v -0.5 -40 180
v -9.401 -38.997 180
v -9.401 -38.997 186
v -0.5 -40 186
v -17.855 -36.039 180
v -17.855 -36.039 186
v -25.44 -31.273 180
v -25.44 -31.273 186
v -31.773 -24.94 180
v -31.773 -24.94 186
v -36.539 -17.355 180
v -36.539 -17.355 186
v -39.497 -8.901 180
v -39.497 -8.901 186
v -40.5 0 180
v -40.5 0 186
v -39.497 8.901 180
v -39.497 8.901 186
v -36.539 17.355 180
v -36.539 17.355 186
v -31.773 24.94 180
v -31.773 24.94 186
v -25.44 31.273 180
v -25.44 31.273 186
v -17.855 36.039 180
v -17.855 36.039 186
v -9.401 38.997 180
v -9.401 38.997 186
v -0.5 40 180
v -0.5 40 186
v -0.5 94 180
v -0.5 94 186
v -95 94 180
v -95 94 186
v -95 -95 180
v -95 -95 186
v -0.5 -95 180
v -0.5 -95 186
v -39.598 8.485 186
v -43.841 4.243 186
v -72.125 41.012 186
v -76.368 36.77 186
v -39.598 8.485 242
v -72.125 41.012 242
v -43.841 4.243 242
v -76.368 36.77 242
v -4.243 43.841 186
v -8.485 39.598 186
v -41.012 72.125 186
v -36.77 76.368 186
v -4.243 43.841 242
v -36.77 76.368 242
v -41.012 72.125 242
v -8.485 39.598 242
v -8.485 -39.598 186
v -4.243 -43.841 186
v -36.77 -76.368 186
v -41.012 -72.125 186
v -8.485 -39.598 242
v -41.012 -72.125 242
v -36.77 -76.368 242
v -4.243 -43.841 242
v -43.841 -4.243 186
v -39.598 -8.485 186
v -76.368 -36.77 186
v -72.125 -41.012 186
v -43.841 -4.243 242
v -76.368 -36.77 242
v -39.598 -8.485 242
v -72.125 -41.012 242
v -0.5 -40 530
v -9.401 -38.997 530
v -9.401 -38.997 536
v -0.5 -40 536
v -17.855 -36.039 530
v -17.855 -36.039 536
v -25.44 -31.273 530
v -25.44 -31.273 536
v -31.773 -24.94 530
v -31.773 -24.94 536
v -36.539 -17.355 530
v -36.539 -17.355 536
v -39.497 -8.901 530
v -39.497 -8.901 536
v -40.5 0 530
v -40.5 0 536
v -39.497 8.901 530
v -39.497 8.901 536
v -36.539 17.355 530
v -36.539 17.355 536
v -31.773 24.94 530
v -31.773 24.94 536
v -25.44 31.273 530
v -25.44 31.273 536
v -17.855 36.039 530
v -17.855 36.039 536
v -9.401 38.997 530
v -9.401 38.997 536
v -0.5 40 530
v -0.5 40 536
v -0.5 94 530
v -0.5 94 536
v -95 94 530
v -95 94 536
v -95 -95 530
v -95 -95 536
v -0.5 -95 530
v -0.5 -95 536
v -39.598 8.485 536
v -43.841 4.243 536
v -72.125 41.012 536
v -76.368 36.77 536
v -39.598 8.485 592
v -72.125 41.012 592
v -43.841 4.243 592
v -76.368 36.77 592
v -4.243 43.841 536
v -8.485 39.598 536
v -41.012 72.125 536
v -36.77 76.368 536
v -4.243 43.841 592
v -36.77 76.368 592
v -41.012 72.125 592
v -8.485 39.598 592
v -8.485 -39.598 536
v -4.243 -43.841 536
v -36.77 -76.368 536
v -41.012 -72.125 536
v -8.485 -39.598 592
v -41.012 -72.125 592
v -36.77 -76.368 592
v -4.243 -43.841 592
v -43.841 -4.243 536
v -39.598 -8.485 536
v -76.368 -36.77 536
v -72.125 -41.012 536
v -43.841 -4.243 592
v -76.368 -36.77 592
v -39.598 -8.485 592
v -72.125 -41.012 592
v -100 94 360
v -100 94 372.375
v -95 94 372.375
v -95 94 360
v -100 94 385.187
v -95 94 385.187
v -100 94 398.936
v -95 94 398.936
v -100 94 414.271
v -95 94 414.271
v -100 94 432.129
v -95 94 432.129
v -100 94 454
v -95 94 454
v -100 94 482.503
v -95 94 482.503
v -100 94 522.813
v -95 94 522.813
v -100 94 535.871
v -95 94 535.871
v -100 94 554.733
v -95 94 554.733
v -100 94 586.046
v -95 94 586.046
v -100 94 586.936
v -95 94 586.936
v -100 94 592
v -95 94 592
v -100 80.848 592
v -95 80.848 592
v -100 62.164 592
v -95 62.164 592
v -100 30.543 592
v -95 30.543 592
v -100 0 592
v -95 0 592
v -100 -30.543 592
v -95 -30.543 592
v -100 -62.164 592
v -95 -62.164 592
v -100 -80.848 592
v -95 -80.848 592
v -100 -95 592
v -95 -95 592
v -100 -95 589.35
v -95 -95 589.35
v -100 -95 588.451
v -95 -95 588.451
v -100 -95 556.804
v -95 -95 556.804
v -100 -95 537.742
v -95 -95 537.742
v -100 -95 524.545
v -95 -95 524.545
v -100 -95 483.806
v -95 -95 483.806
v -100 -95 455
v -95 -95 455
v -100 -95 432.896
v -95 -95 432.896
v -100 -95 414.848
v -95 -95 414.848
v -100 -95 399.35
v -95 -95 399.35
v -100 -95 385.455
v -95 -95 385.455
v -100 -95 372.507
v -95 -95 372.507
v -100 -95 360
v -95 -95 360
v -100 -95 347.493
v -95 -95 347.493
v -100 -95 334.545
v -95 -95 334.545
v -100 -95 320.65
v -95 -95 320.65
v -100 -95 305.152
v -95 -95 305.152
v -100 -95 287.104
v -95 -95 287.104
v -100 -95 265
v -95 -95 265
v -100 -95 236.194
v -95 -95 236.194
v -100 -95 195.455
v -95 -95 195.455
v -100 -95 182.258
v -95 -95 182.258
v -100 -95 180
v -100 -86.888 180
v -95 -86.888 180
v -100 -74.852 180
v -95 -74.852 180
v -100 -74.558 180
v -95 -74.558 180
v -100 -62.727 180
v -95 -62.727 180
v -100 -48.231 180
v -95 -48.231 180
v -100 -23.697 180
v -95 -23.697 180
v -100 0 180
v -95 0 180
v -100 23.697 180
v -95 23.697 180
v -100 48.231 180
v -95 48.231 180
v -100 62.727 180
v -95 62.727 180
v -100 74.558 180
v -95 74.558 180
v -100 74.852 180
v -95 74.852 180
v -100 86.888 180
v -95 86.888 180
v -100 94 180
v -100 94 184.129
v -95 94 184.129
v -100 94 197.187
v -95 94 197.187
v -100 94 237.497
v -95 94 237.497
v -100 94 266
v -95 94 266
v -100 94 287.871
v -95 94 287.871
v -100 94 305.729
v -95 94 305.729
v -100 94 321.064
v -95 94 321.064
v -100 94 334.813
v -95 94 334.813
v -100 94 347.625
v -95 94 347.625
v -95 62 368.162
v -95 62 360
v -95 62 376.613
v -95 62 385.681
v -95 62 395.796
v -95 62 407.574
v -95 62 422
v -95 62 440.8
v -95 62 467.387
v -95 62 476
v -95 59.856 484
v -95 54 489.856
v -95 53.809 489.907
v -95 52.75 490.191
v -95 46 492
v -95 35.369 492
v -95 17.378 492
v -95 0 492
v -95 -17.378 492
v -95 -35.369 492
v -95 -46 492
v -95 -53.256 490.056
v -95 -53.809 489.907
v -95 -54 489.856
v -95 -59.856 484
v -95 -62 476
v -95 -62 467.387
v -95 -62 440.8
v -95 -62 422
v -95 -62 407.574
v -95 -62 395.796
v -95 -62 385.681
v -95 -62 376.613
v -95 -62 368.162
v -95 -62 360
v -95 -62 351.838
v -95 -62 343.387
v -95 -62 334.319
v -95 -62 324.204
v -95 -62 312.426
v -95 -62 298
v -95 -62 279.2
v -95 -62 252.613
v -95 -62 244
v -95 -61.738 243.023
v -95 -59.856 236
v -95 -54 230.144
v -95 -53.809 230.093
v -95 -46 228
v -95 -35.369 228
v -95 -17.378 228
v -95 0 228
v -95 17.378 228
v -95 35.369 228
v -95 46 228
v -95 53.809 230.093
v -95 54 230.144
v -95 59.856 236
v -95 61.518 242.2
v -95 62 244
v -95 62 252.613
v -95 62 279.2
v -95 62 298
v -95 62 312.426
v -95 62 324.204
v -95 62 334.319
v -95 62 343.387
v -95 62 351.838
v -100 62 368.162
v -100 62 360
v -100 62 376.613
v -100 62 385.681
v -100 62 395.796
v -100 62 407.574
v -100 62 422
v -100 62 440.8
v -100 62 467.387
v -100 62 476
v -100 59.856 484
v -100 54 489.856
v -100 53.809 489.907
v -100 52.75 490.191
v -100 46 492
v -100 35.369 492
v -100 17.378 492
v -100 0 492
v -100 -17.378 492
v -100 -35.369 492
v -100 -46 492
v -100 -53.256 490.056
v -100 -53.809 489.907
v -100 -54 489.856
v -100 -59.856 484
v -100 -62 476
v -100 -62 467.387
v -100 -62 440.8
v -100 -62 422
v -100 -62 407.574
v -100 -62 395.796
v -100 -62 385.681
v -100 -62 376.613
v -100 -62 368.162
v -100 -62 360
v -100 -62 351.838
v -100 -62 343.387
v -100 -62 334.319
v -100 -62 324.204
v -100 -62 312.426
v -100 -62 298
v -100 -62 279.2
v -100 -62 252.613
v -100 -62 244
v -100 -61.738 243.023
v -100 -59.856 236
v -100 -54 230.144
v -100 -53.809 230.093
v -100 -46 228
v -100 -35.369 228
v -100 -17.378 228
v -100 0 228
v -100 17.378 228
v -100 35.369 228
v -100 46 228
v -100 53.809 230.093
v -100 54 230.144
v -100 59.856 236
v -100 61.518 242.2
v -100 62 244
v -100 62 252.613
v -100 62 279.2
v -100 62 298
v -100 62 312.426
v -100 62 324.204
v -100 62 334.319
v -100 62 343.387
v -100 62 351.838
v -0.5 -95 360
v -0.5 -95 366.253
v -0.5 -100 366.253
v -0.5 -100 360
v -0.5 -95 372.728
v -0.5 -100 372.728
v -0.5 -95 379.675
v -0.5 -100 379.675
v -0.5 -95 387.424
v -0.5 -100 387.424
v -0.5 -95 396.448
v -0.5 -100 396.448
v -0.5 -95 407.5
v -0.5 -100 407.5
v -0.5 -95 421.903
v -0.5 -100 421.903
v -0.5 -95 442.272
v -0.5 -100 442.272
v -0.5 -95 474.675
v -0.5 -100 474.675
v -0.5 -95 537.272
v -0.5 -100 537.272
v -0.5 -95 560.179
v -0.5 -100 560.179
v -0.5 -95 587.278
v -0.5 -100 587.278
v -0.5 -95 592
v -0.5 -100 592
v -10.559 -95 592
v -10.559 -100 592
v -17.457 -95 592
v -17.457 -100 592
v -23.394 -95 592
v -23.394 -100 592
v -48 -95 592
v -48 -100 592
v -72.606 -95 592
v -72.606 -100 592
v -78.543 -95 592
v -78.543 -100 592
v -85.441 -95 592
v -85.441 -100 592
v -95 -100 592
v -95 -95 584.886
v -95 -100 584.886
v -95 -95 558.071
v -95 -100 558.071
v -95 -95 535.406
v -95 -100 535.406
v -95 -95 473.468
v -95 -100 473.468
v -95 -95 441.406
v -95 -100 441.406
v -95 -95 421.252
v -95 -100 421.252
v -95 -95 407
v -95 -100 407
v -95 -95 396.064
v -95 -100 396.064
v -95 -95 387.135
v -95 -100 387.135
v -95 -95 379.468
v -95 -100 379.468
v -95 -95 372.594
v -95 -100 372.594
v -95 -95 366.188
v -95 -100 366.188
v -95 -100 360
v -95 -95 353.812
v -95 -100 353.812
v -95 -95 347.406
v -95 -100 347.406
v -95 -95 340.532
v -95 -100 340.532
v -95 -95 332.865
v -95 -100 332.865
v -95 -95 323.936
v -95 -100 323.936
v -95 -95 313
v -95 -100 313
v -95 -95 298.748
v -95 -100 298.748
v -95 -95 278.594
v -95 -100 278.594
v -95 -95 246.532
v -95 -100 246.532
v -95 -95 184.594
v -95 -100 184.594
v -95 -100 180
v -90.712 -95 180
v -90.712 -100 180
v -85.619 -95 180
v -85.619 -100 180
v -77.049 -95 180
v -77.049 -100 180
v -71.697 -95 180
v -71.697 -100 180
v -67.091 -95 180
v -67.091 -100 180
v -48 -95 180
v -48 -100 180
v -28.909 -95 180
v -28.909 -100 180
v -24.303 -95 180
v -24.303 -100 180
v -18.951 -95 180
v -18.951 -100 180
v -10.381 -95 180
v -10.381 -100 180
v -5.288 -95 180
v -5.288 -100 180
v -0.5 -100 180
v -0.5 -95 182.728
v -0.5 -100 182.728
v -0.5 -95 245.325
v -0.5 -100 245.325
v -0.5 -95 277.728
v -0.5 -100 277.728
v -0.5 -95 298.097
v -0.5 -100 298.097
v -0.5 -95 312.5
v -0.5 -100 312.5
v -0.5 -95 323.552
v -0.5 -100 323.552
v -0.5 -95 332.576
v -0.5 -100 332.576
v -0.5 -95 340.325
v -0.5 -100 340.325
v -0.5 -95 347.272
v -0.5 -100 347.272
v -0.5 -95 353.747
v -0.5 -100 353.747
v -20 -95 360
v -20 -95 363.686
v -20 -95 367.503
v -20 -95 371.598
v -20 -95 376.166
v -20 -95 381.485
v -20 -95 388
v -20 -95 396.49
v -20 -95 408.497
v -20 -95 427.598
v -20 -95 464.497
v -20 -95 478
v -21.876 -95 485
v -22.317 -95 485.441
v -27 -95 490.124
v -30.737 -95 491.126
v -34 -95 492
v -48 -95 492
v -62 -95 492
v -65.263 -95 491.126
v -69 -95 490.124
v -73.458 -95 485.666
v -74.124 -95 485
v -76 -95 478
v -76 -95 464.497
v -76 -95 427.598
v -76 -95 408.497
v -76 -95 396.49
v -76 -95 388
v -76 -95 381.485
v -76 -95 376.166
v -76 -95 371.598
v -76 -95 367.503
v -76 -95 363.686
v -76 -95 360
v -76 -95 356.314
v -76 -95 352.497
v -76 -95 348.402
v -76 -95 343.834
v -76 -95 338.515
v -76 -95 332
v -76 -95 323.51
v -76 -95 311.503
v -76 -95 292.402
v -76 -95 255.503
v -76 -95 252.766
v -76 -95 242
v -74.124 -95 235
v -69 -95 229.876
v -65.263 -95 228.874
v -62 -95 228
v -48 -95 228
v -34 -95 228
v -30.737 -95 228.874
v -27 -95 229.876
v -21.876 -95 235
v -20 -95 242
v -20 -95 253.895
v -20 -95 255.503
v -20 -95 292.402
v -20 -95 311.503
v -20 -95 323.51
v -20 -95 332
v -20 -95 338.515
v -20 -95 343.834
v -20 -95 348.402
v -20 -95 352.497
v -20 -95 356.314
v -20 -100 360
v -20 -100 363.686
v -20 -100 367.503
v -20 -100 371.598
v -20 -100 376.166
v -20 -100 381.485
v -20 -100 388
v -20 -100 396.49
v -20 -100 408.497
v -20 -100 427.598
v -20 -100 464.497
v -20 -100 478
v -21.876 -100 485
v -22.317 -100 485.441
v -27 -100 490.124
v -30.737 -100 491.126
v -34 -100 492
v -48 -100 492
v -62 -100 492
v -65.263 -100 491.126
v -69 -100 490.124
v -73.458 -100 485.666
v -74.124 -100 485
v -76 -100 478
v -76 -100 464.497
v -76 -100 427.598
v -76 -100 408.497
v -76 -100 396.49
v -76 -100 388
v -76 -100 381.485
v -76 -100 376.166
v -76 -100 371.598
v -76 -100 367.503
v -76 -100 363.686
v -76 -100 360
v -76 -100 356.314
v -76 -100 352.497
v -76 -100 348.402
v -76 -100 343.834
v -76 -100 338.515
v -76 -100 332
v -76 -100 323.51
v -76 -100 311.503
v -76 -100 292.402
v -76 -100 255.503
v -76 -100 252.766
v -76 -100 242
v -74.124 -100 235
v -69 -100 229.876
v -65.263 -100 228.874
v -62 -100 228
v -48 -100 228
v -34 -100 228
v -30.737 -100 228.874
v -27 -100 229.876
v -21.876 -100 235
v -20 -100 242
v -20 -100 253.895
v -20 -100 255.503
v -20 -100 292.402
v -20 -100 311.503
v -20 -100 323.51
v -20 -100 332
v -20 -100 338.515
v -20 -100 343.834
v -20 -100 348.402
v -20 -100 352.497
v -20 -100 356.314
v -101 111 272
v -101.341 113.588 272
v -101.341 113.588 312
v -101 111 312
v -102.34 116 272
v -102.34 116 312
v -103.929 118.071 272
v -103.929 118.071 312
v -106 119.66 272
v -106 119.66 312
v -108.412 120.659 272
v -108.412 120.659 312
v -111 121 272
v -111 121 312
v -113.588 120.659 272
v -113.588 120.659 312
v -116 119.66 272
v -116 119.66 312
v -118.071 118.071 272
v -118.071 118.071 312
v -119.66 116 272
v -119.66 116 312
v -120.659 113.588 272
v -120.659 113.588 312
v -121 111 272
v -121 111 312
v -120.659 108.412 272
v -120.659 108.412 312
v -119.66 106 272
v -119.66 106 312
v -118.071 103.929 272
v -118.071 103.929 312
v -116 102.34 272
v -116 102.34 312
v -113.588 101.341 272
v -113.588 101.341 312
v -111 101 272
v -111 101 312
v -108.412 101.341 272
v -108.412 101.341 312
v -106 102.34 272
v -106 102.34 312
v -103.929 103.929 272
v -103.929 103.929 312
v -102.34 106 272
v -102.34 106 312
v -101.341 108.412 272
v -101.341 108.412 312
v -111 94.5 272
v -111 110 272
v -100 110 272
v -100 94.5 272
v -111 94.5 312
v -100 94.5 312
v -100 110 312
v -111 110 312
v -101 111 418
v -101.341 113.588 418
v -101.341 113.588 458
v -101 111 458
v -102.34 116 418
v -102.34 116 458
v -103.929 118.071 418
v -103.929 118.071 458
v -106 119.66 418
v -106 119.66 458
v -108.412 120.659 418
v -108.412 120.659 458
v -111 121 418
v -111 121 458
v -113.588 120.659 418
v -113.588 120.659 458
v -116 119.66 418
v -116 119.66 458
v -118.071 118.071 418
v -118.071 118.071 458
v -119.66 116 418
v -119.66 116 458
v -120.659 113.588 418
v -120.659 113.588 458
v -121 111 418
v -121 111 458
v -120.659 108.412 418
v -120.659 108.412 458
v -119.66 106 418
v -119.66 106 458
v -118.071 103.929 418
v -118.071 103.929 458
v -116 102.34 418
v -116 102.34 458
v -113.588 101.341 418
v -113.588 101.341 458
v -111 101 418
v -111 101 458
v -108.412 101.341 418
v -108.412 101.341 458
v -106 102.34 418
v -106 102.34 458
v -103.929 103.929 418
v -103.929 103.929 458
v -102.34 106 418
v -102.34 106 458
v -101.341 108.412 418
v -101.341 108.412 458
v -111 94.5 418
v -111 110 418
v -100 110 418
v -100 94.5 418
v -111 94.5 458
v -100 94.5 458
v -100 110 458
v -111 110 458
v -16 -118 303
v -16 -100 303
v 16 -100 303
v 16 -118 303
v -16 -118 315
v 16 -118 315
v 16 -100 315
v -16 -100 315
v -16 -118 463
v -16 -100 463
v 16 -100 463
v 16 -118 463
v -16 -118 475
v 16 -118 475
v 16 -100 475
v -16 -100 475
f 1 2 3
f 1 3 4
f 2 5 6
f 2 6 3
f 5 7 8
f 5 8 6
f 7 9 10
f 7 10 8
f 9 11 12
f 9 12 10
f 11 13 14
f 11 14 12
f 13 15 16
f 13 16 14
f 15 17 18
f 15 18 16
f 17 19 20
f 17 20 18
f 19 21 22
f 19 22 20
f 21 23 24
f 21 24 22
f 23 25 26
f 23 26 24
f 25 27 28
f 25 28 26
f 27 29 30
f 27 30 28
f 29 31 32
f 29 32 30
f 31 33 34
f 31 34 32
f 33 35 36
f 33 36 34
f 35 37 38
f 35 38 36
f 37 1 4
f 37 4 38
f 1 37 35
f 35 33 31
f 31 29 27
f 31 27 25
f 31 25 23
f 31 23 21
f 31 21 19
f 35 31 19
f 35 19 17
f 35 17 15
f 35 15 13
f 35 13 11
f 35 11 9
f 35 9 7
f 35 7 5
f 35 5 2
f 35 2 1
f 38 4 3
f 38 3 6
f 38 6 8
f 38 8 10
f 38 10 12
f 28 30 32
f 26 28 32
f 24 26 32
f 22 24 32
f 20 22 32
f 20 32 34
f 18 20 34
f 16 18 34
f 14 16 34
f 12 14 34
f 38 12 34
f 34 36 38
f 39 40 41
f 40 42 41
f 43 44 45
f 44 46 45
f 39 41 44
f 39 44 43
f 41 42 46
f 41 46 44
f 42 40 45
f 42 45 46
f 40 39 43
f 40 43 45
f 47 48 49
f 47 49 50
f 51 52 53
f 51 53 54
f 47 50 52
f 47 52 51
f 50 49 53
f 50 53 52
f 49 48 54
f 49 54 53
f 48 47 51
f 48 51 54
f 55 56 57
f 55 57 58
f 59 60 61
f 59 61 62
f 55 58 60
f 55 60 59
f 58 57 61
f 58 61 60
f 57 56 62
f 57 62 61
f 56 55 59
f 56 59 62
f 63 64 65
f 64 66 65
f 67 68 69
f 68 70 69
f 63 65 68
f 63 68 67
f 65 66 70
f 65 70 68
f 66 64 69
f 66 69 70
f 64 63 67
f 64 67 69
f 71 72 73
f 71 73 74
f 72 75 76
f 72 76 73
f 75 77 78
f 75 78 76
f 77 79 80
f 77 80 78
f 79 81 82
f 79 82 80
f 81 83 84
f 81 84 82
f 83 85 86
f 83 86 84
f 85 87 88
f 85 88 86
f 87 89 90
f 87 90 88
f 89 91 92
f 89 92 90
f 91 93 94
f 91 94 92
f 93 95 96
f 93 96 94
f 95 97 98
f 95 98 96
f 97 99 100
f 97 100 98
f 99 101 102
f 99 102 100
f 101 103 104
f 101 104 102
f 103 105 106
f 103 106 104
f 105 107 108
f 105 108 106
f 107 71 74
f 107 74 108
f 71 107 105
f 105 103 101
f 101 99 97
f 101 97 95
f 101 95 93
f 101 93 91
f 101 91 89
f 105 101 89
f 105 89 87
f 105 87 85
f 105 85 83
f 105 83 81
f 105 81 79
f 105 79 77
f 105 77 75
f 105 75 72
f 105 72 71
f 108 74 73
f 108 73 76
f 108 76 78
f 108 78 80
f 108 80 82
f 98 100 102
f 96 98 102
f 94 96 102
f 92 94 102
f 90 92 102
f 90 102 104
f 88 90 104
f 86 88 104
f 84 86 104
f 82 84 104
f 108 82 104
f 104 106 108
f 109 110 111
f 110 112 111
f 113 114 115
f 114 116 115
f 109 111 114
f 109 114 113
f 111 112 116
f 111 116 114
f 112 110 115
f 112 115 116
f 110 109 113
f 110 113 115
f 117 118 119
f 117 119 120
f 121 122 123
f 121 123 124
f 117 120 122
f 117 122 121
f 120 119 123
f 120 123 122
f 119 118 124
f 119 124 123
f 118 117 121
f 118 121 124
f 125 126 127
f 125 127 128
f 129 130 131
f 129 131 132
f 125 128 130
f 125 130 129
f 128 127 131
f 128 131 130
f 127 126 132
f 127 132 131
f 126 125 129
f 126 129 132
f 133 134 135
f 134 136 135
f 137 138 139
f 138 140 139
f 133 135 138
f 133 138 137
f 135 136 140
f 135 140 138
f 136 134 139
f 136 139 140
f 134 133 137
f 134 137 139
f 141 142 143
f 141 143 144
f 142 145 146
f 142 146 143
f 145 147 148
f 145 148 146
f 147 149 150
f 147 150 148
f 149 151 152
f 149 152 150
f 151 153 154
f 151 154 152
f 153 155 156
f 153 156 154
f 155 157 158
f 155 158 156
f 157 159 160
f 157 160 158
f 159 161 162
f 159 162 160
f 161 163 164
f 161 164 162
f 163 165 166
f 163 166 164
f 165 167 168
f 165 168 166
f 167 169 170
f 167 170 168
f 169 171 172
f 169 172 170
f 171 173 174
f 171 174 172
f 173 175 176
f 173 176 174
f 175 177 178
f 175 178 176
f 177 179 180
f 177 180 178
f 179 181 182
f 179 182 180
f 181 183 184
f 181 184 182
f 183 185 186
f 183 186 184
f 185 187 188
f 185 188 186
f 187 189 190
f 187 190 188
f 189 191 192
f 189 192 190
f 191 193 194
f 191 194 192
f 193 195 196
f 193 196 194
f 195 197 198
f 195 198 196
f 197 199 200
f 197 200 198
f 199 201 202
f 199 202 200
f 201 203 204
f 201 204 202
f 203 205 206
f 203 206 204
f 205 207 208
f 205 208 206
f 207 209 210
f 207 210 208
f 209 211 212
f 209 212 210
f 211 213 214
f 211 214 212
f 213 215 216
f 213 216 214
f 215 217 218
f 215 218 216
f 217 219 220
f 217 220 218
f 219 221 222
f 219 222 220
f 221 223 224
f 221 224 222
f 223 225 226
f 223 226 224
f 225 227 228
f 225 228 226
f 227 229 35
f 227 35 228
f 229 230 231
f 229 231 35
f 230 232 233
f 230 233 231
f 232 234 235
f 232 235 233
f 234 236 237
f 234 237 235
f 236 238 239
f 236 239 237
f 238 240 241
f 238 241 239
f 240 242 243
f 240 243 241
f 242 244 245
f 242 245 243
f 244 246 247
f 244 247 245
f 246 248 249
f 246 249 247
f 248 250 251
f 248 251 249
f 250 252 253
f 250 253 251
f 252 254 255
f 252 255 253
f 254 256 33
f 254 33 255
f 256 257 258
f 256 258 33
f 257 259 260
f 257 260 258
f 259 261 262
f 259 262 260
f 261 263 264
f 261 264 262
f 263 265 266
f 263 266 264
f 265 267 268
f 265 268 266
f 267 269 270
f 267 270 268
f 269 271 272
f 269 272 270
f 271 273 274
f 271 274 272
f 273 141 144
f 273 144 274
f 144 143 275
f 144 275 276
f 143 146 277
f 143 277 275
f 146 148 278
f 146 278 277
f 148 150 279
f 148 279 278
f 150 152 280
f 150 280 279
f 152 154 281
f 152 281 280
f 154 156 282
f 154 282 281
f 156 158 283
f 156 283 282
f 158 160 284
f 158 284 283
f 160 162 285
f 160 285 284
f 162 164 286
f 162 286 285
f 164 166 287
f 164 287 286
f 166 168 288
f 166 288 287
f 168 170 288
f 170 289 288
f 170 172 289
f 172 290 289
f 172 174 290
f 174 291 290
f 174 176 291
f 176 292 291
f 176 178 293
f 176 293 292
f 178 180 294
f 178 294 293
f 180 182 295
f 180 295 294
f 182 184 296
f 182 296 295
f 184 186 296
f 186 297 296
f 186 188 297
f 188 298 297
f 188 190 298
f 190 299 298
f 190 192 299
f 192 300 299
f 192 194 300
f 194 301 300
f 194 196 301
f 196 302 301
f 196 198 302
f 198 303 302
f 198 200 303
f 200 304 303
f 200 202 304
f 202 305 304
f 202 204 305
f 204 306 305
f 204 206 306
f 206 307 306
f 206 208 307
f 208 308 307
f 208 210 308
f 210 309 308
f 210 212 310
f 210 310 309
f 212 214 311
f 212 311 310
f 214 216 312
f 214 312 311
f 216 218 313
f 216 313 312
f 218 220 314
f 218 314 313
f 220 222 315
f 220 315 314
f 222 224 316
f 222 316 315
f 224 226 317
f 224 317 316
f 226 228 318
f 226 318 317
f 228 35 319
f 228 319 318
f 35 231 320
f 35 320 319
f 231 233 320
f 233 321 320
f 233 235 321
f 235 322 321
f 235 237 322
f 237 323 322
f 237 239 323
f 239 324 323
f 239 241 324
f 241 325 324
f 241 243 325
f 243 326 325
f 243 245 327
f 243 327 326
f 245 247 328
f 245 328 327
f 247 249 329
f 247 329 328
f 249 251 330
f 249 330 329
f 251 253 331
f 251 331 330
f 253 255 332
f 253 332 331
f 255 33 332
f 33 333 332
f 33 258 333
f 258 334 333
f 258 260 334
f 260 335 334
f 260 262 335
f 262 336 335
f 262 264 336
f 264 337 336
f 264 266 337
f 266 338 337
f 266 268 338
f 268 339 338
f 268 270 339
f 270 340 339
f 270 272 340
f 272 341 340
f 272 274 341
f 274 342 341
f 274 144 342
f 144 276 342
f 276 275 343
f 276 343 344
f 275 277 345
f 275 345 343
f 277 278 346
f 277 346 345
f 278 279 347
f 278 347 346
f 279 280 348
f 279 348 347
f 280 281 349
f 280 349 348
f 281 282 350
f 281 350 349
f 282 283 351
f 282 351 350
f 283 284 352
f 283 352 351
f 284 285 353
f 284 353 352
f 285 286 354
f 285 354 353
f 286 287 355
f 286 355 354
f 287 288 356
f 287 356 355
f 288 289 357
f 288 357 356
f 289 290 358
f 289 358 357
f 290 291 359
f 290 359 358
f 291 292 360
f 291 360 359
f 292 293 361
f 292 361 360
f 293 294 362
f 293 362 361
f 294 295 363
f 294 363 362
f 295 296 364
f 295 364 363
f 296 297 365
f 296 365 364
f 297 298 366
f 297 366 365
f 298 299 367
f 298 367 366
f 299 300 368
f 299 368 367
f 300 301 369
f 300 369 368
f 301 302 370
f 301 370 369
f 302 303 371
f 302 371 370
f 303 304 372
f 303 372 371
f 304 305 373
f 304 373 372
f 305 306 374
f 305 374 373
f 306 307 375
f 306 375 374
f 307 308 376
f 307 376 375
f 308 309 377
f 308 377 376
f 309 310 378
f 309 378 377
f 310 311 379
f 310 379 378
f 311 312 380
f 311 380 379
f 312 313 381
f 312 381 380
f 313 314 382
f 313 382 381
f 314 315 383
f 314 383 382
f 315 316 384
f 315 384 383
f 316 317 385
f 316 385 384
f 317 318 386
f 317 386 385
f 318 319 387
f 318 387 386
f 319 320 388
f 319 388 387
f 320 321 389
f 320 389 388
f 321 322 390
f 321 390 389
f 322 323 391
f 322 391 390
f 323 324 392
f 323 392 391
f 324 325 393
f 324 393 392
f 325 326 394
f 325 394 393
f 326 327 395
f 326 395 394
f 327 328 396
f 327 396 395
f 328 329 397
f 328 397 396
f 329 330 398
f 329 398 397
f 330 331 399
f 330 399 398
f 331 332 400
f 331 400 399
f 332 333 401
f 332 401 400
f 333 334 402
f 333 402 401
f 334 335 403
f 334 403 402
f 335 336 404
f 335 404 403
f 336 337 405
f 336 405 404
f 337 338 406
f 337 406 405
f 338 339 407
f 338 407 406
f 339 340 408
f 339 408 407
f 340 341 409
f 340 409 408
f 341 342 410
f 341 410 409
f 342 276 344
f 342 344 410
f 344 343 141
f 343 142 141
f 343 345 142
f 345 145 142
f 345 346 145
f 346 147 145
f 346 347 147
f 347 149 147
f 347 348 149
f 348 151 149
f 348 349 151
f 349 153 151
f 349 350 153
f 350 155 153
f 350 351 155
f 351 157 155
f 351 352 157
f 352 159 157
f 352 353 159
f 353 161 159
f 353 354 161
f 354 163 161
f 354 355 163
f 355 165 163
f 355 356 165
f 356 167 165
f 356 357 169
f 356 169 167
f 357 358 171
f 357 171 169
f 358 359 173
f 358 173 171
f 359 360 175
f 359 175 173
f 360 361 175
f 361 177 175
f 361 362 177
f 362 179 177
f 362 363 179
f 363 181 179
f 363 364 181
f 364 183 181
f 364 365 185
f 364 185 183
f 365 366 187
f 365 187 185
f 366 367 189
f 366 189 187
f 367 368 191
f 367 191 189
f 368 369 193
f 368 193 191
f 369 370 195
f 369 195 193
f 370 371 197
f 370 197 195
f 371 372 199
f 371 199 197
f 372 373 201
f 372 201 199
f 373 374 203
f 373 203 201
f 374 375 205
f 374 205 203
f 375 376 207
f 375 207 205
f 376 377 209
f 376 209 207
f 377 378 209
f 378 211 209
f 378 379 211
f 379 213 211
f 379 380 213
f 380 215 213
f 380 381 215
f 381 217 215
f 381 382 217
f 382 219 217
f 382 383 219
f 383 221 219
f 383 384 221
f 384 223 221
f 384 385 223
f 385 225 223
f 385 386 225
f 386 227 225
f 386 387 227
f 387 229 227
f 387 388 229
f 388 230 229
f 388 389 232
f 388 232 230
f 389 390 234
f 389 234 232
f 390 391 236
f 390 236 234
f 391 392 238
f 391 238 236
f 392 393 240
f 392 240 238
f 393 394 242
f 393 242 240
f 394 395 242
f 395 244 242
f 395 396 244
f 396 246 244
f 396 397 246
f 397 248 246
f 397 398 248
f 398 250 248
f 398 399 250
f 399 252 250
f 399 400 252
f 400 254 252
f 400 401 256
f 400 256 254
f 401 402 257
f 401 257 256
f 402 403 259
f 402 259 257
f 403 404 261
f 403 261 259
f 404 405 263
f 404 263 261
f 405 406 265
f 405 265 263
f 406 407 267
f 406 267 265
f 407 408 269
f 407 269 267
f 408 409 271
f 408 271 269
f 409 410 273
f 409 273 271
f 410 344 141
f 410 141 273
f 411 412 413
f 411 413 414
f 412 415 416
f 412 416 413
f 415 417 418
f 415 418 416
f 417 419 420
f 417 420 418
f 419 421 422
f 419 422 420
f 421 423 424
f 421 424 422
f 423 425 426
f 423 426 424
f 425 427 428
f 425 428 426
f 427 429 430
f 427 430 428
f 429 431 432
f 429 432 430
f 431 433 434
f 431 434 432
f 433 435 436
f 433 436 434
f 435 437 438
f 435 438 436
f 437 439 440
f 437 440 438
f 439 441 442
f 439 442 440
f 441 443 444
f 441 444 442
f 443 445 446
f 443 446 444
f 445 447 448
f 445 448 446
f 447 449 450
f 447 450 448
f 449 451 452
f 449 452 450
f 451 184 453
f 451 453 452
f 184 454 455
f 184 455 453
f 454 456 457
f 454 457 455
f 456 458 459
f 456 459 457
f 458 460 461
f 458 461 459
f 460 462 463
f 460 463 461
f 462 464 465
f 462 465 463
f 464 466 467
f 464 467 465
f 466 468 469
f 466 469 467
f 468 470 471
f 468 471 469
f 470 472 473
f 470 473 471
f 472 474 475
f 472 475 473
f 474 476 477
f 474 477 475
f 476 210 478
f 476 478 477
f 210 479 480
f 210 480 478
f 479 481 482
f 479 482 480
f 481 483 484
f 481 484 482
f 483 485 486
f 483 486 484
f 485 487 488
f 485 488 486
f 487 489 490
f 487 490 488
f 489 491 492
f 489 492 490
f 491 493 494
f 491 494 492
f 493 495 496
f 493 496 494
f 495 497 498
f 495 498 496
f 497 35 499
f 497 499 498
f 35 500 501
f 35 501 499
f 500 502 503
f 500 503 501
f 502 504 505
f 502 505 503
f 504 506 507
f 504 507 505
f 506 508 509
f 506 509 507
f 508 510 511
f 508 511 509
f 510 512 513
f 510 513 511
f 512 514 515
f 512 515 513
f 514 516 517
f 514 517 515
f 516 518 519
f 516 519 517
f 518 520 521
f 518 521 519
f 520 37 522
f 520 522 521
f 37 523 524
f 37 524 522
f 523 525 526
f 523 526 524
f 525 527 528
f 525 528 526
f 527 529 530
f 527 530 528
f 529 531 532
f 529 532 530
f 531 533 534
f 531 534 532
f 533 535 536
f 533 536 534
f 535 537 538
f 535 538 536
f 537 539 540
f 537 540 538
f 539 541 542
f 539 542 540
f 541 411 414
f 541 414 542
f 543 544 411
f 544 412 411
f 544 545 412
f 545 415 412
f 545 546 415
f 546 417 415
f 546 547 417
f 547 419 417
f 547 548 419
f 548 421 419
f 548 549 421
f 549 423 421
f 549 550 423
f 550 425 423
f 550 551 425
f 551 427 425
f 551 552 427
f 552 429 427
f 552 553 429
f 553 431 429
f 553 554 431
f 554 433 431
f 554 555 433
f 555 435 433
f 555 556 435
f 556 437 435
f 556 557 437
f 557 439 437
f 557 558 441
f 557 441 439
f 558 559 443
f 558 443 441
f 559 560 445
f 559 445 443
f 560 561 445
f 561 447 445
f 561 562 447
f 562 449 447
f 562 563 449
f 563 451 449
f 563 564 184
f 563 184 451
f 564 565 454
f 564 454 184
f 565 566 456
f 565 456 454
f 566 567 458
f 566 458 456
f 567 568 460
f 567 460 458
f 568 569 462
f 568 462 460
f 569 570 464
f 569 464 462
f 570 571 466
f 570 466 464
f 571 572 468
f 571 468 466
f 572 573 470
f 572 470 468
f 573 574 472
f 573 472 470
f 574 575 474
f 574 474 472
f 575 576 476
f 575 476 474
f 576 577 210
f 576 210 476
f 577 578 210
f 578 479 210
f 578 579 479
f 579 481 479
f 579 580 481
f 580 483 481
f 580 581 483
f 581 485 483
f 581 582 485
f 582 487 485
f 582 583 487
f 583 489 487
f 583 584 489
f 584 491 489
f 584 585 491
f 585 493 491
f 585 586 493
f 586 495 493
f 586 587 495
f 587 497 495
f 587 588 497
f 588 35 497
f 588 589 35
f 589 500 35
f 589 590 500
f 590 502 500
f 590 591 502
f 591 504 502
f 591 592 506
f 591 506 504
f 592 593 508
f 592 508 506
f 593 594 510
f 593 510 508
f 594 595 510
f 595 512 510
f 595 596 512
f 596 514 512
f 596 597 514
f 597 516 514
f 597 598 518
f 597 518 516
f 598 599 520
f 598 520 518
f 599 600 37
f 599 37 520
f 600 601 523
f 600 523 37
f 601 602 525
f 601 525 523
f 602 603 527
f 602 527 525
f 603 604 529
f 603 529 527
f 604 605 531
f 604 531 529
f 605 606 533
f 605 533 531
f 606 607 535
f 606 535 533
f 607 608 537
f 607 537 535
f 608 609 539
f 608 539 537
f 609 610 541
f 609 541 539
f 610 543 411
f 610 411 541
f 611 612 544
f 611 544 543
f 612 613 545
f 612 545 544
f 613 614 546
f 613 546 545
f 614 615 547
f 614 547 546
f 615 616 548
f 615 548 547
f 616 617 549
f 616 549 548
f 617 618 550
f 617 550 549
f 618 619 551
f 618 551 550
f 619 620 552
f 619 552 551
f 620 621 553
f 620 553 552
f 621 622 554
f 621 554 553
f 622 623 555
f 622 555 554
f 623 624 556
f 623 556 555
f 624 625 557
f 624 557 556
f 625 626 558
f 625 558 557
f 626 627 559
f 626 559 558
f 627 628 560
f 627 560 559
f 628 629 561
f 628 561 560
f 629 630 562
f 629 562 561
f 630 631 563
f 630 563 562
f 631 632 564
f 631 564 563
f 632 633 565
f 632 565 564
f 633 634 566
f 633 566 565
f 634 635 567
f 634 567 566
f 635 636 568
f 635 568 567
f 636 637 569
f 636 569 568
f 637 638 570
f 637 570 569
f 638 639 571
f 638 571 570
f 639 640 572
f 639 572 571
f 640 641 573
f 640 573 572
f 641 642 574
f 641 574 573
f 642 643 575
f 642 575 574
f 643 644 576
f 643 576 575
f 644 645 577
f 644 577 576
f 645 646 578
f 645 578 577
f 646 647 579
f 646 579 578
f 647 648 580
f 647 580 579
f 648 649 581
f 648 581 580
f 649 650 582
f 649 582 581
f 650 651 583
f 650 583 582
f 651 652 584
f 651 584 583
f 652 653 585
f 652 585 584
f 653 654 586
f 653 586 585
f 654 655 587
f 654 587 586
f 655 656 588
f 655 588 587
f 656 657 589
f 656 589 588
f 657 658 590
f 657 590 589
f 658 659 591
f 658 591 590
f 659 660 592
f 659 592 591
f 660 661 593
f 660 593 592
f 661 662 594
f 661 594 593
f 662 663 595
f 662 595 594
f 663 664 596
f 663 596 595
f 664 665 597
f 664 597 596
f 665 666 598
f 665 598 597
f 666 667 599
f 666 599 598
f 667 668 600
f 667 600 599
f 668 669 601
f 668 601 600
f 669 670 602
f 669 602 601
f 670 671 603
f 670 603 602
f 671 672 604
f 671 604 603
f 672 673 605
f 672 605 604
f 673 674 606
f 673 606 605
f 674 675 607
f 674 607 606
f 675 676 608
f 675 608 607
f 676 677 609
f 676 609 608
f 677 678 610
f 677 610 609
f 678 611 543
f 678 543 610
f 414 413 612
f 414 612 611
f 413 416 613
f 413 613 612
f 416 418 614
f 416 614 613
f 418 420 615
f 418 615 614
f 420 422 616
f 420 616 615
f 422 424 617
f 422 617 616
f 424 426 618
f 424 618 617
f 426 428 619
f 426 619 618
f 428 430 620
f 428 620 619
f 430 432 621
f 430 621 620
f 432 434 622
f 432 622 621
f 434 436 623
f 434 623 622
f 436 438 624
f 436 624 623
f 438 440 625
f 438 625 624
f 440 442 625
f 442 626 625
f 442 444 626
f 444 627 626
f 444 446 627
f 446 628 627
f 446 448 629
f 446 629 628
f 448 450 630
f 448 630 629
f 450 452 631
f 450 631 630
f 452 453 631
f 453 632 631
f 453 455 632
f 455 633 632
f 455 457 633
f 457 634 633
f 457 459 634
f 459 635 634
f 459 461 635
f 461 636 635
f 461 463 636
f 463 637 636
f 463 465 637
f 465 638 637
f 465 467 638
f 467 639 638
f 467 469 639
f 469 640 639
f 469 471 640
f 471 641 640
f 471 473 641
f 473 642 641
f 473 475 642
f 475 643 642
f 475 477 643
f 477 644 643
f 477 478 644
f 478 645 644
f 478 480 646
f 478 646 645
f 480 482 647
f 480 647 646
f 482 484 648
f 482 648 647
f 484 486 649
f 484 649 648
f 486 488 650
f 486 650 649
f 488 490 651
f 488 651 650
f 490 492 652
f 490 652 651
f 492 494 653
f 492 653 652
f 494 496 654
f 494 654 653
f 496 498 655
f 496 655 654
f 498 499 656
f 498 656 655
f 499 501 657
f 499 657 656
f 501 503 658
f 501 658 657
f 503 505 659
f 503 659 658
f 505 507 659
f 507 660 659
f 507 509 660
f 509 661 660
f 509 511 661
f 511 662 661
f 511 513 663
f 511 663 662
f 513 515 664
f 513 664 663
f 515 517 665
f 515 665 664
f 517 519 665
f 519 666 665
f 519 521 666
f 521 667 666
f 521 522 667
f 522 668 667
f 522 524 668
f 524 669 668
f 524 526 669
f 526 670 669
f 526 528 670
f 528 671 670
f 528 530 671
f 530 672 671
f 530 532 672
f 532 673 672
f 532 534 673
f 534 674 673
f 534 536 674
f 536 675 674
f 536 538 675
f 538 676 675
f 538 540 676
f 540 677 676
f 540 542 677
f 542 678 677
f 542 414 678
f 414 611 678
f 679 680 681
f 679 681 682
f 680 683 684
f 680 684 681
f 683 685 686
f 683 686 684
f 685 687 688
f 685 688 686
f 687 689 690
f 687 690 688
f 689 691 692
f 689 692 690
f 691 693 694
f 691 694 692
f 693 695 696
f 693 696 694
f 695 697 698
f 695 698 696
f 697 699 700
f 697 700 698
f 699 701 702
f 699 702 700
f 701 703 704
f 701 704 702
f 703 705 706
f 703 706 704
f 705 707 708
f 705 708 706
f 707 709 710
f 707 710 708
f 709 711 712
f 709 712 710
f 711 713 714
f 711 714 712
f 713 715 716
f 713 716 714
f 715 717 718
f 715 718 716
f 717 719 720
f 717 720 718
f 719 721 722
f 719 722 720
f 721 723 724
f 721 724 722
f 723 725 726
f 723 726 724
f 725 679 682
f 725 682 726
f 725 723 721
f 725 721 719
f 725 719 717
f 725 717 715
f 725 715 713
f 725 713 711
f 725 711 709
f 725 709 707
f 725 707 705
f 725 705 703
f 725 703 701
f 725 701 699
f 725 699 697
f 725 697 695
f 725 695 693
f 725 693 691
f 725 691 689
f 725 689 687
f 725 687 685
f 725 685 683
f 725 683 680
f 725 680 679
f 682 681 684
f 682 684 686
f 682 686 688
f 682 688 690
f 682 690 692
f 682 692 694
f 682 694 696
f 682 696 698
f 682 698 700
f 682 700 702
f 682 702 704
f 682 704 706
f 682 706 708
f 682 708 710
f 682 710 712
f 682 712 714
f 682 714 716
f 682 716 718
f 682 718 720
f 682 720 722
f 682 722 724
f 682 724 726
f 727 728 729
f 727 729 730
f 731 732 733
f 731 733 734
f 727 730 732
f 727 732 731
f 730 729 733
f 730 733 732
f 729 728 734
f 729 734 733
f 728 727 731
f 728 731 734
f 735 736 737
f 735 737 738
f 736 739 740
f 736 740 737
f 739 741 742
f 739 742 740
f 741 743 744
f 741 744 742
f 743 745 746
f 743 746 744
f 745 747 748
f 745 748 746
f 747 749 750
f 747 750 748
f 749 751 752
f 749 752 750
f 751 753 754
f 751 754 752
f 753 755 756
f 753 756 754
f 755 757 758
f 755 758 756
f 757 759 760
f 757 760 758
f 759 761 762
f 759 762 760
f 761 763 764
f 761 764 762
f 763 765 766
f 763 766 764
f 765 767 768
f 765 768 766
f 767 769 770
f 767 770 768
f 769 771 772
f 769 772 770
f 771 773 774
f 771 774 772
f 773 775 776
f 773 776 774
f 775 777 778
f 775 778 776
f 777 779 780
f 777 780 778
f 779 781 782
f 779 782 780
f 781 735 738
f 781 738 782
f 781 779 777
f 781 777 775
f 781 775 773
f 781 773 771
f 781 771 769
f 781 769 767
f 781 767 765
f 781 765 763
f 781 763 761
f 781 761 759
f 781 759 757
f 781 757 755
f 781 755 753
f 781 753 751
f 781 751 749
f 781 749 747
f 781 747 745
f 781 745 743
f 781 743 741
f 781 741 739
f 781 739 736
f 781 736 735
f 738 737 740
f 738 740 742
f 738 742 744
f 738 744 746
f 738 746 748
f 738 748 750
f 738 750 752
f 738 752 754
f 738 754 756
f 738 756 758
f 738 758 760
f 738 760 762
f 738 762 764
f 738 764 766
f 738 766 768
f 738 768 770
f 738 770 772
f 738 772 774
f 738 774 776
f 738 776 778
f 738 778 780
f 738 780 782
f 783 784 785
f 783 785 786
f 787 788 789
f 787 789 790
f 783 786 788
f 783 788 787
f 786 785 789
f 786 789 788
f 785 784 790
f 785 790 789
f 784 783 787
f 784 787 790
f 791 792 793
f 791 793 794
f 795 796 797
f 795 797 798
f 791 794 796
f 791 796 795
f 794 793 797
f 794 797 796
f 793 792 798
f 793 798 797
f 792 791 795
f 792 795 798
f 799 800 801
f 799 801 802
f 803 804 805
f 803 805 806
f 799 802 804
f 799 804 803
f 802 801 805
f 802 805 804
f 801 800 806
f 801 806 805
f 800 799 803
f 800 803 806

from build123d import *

# Parameters (mm, degrees)
EXTRUDE_START       = 180
EXTRUDE_1_DEPTH     = 6
EXTRUDE_START_2     = 186
EXTRUDE_2_DEPTH     = 56
EXTRUDE_3_DEPTH     = 56
EXTRUDE_4_DEPTH     = 56
EXTRUDE_5_DEPTH     = 56
EXTRUDE_START_3     = 530
EXTRUDE_6_DEPTH     = 6
EXTRUDE_START_4     = 536
EXTRUDE_7_DEPTH     = 56
EXTRUDE_8_DEPTH     = 56
EXTRUDE_9_DEPTH     = 56
EXTRUDE_10_DEPTH    = 56
EXTRUDE_START_5     = -100
EXTRUDE_SKETCH_11_W = 412
EXTRUDE_SKETCH_11_H = 189
EXTRUDE_11_DEPTH    = 5
EXTRUDE_SKETCH_12_W = 94.5
EXTRUDE_SKETCH_12_H = 412
EXTRUDE_12_DEPTH    = 5
EXTRUDE_START_6     = 272
EXTRUDE_SKETCH_13_R = 10
EXTRUDE_13_DEPTH    = 40
EXTRUDE_SKETCH_14_W = 11
EXTRUDE_SKETCH_14_H = 15.5
EXTRUDE_14_DEPTH    = 40
EXTRUDE_START_7     = 418
EXTRUDE_SKETCH_15_R = 10
EXTRUDE_15_DEPTH    = 40
EXTRUDE_SKETCH_16_W = 11
EXTRUDE_SKETCH_16_H = 15.5
EXTRUDE_16_DEPTH    = 40
EXTRUDE_START_8     = 303
EXTRUDE_SKETCH_17_W = 32
EXTRUDE_SKETCH_17_H = 18
EXTRUDE_17_DEPTH    = 12
EXTRUDE_START_9     = 463
EXTRUDE_SKETCH_18_W = 32
EXTRUDE_SKETCH_18_H = 18
EXTRUDE_18_DEPTH    = 12


with BuildPart() as part:
    # Extrude sketch 1 → Extrude 1 (new body)
    with BuildSketch(Plane.XY.offset(EXTRUDE_START)):
        with BuildLine():
            Line((-95, 94), (-95, -95))
            Line((-95, -95), (-0.5, -95))
            Line((-0.5, -95), (-0.5, -40))
            ThreePointArc((-0.5, -40), (-40.5, 0), (-0.5, 40))
            Line((-0.5, 40), (-0.5, 94))
            Line((-0.5, 94), (-95, 94))
        make_face()
    extrude(amount=EXTRUDE_1_DEPTH)


with BuildPart() as body_2:
    # Extrude sketch 2 → Extrude 2 (new body)
    with BuildSketch(Plane.XY.offset(EXTRUDE_START_2)):
        Polygon((-39.597979746, 8.485281374), (-72.124891681, 41.012193309), (-76.367532368, 36.769552622), (-43.840620434, 4.242640687), align=None)
    extrude(amount=EXTRUDE_2_DEPTH)


with BuildPart() as body_3:
    # Extrude sketch 3 → Extrude 3 (new body)
    with BuildSketch(Plane.XY.offset(EXTRUDE_START_2)):
        Polygon((-41.012193309, 72.124891681), (-8.485281374, 39.597979746), (-4.242640687, 43.840620434), (-36.769552622, 76.367532368), align=None)
    extrude(amount=EXTRUDE_3_DEPTH)


with BuildPart() as body_4:
    # Extrude sketch 4 → Extrude 4 (new body)
    with BuildSketch(Plane.XY.offset(EXTRUDE_START_2)):
        Polygon((-8.485281374, -39.597979746), (-41.012193309, -72.124891681), (-36.769552622, -76.367532368), (-4.242640687, -43.840620434), align=None)
    extrude(amount=EXTRUDE_4_DEPTH)


with BuildPart() as body_5:
    # Extrude sketch 5 → Extrude 5 (new body)
    with BuildSketch(Plane.XY.offset(EXTRUDE_START_2)):
        Polygon((-43.840620434, -4.242640687), (-76.367532368, -36.769552622), (-72.124891681, -41.012193309), (-39.597979746, -8.485281374), align=None)
    extrude(amount=EXTRUDE_5_DEPTH)


with BuildPart() as body_6:
    # Extrude sketch 6 → Extrude 6 (new body)
    with BuildSketch(Plane.XY.offset(EXTRUDE_START_3)):
        with BuildLine():
            Line((-95, 94), (-95, -95))
            Line((-95, -95), (-0.5, -95))
            Line((-0.5, -95), (-0.5, -40))
            ThreePointArc((-0.5, -40), (-40.5, 0), (-0.5, 40))
            Line((-0.5, 40), (-0.5, 94))
            Line((-0.5, 94), (-95, 94))
        make_face()
    extrude(amount=EXTRUDE_6_DEPTH)


with BuildPart() as body_7:
    # Extrude sketch 7 → Extrude 7 (new body)
    with BuildSketch(Plane.XY.offset(EXTRUDE_START_4)):
        Polygon((-39.597979746, 8.485281374), (-72.124891681, 41.012193309), (-76.367532368, 36.769552622), (-43.840620434, 4.242640687), align=None)
    extrude(amount=EXTRUDE_7_DEPTH)


with BuildPart() as body_8:
    # Extrude sketch 8 → Extrude 8 (new body)
    with BuildSketch(Plane.XY.offset(EXTRUDE_START_4)):
        Polygon((-41.012193309, 72.124891681), (-8.485281374, 39.597979746), (-4.242640687, 43.840620434), (-36.769552622, 76.367532368), align=None)
    extrude(amount=EXTRUDE_8_DEPTH)


with BuildPart() as body_9:
    # Extrude sketch 9 → Extrude 9 (new body)
    with BuildSketch(Plane.XY.offset(EXTRUDE_START_4)):
        Polygon((-8.485281374, -39.597979746), (-41.012193309, -72.124891681), (-36.769552622, -76.367532368), (-4.242640687, -43.840620434), align=None)
    extrude(amount=EXTRUDE_9_DEPTH)


with BuildPart() as body_10:
    # Extrude sketch 10 → Extrude 10 (new body)
    with BuildSketch(Plane.XY.offset(EXTRUDE_START_4)):
        Polygon((-43.840620434, -4.242640687), (-76.367532368, -36.769552622), (-72.124891681, -41.012193309), (-39.597979746, -8.485281374), align=None)
    extrude(amount=EXTRUDE_10_DEPTH)


with BuildPart() as body_11:
    # Extrude sketch 11 → Extrude 11 (new body)
    with BuildSketch(Plane(origin=(0, 0, 0), x_dir=(0, 0, -1), z_dir=(1, 0, 0)).offset(EXTRUDE_START_5)):
        with Locations((-386, -0.5)):
            Rectangle(EXTRUDE_SKETCH_11_W, EXTRUDE_SKETCH_11_H)
        with BuildLine():
            Line((-244, 62), (-476, 62))
            ThreePointArc((-476, 62), (-487.313708499, 57.313708499), (-492, 46))
            Line((-492, 46), (-492, -46))
            ThreePointArc((-492, -46), (-487.313708499, -57.313708499), (-476, -62))
            Line((-476, -62), (-244, -62))
            ThreePointArc((-244, -62), (-232.686291501, -57.313708499), (-228, -46))
            Line((-228, -46), (-228, 46))
            ThreePointArc((-228, 46), (-232.686291501, 57.313708499), (-244, 62))
        make_face(mode=Mode.SUBTRACT)
    extrude(amount=EXTRUDE_11_DEPTH)


with BuildPart() as body_12:
    # Extrude sketch 12 → Extrude 12 (new body)
    with BuildSketch(Plane(origin=(0, 0, 0), x_dir=(1, 0, 0), z_dir=(0, 1, 0)).offset(EXTRUDE_START_5)):
        with Locations((-47.75, -386)):
            Rectangle(EXTRUDE_SKETCH_12_W, EXTRUDE_SKETCH_12_H)
        with BuildLine():
            Line((-20, -242), (-20, -478))
            ThreePointArc((-20, -478), (-24.100505063, -487.899494937), (-34, -492))
            Line((-34, -492), (-62, -492))
            ThreePointArc((-62, -492), (-71.899494937, -487.899494937), (-76, -478))
            Line((-76, -478), (-76, -242))
            ThreePointArc((-76, -242), (-71.899494937, -232.100505063), (-62, -228))
            Line((-62, -228), (-34, -228))
            ThreePointArc((-34, -228), (-24.100505063, -232.100505063), (-20, -242))
        make_face(mode=Mode.SUBTRACT)
    extrude(amount=EXTRUDE_12_DEPTH)


with BuildPart() as body_13:
    # Extrude sketch 13 → Extrude 13 (new body)
    with BuildSketch(Plane.XY.offset(EXTRUDE_START_6)):
        with Locations((-111, 111)):
            Circle(EXTRUDE_SKETCH_13_R)
    extrude(amount=EXTRUDE_13_DEPTH)


with BuildPart() as body_14:
    # Extrude sketch 14 → Extrude 14 (new body)
    with BuildSketch(Plane.XY.offset(EXTRUDE_START_6)):
        with Locations((-105.5, 102.25)):
            Rectangle(EXTRUDE_SKETCH_14_W, EXTRUDE_SKETCH_14_H)
    extrude(amount=EXTRUDE_14_DEPTH)


with BuildPart() as body_15:
    # Extrude sketch 15 → Extrude 15 (new body)
    with BuildSketch(Plane.XY.offset(EXTRUDE_START_7)):
        with Locations((-111, 111)):
            Circle(EXTRUDE_SKETCH_15_R)
    extrude(amount=EXTRUDE_15_DEPTH)


with BuildPart() as body_16:
    # Extrude sketch 16 → Extrude 16 (new body)
    with BuildSketch(Plane.XY.offset(EXTRUDE_START_7)):
        with Locations((-105.5, 102.25)):
            Rectangle(EXTRUDE_SKETCH_16_W, EXTRUDE_SKETCH_16_H)
    extrude(amount=EXTRUDE_16_DEPTH)


with BuildPart() as body_17:
    # Extrude sketch 17 → Extrude 17 (new body)
    with BuildSketch(Plane.XY.offset(EXTRUDE_START_8)):
        with Locations((0, -109)):
            Rectangle(EXTRUDE_SKETCH_17_W, EXTRUDE_SKETCH_17_H)
    extrude(amount=EXTRUDE_17_DEPTH)


with BuildPart() as body_18:
    # Extrude sketch 18 → Extrude 18 (new body)
    with BuildSketch(Plane.XY.offset(EXTRUDE_START_9)):
        with Locations((0, -109)):
            Rectangle(EXTRUDE_SKETCH_18_W, EXTRUDE_SKETCH_18_H)
    extrude(amount=EXTRUDE_18_DEPTH)


solid = Compound([part.part, body_2.part, body_3.part, body_4.part, body_5.part, body_6.part, body_7.part, body_8.part, body_9.part, body_10.part, body_11.part, body_12.part, body_13.part, body_14.part, body_15.part, body_16.part, body_17.part, body_18.part])
